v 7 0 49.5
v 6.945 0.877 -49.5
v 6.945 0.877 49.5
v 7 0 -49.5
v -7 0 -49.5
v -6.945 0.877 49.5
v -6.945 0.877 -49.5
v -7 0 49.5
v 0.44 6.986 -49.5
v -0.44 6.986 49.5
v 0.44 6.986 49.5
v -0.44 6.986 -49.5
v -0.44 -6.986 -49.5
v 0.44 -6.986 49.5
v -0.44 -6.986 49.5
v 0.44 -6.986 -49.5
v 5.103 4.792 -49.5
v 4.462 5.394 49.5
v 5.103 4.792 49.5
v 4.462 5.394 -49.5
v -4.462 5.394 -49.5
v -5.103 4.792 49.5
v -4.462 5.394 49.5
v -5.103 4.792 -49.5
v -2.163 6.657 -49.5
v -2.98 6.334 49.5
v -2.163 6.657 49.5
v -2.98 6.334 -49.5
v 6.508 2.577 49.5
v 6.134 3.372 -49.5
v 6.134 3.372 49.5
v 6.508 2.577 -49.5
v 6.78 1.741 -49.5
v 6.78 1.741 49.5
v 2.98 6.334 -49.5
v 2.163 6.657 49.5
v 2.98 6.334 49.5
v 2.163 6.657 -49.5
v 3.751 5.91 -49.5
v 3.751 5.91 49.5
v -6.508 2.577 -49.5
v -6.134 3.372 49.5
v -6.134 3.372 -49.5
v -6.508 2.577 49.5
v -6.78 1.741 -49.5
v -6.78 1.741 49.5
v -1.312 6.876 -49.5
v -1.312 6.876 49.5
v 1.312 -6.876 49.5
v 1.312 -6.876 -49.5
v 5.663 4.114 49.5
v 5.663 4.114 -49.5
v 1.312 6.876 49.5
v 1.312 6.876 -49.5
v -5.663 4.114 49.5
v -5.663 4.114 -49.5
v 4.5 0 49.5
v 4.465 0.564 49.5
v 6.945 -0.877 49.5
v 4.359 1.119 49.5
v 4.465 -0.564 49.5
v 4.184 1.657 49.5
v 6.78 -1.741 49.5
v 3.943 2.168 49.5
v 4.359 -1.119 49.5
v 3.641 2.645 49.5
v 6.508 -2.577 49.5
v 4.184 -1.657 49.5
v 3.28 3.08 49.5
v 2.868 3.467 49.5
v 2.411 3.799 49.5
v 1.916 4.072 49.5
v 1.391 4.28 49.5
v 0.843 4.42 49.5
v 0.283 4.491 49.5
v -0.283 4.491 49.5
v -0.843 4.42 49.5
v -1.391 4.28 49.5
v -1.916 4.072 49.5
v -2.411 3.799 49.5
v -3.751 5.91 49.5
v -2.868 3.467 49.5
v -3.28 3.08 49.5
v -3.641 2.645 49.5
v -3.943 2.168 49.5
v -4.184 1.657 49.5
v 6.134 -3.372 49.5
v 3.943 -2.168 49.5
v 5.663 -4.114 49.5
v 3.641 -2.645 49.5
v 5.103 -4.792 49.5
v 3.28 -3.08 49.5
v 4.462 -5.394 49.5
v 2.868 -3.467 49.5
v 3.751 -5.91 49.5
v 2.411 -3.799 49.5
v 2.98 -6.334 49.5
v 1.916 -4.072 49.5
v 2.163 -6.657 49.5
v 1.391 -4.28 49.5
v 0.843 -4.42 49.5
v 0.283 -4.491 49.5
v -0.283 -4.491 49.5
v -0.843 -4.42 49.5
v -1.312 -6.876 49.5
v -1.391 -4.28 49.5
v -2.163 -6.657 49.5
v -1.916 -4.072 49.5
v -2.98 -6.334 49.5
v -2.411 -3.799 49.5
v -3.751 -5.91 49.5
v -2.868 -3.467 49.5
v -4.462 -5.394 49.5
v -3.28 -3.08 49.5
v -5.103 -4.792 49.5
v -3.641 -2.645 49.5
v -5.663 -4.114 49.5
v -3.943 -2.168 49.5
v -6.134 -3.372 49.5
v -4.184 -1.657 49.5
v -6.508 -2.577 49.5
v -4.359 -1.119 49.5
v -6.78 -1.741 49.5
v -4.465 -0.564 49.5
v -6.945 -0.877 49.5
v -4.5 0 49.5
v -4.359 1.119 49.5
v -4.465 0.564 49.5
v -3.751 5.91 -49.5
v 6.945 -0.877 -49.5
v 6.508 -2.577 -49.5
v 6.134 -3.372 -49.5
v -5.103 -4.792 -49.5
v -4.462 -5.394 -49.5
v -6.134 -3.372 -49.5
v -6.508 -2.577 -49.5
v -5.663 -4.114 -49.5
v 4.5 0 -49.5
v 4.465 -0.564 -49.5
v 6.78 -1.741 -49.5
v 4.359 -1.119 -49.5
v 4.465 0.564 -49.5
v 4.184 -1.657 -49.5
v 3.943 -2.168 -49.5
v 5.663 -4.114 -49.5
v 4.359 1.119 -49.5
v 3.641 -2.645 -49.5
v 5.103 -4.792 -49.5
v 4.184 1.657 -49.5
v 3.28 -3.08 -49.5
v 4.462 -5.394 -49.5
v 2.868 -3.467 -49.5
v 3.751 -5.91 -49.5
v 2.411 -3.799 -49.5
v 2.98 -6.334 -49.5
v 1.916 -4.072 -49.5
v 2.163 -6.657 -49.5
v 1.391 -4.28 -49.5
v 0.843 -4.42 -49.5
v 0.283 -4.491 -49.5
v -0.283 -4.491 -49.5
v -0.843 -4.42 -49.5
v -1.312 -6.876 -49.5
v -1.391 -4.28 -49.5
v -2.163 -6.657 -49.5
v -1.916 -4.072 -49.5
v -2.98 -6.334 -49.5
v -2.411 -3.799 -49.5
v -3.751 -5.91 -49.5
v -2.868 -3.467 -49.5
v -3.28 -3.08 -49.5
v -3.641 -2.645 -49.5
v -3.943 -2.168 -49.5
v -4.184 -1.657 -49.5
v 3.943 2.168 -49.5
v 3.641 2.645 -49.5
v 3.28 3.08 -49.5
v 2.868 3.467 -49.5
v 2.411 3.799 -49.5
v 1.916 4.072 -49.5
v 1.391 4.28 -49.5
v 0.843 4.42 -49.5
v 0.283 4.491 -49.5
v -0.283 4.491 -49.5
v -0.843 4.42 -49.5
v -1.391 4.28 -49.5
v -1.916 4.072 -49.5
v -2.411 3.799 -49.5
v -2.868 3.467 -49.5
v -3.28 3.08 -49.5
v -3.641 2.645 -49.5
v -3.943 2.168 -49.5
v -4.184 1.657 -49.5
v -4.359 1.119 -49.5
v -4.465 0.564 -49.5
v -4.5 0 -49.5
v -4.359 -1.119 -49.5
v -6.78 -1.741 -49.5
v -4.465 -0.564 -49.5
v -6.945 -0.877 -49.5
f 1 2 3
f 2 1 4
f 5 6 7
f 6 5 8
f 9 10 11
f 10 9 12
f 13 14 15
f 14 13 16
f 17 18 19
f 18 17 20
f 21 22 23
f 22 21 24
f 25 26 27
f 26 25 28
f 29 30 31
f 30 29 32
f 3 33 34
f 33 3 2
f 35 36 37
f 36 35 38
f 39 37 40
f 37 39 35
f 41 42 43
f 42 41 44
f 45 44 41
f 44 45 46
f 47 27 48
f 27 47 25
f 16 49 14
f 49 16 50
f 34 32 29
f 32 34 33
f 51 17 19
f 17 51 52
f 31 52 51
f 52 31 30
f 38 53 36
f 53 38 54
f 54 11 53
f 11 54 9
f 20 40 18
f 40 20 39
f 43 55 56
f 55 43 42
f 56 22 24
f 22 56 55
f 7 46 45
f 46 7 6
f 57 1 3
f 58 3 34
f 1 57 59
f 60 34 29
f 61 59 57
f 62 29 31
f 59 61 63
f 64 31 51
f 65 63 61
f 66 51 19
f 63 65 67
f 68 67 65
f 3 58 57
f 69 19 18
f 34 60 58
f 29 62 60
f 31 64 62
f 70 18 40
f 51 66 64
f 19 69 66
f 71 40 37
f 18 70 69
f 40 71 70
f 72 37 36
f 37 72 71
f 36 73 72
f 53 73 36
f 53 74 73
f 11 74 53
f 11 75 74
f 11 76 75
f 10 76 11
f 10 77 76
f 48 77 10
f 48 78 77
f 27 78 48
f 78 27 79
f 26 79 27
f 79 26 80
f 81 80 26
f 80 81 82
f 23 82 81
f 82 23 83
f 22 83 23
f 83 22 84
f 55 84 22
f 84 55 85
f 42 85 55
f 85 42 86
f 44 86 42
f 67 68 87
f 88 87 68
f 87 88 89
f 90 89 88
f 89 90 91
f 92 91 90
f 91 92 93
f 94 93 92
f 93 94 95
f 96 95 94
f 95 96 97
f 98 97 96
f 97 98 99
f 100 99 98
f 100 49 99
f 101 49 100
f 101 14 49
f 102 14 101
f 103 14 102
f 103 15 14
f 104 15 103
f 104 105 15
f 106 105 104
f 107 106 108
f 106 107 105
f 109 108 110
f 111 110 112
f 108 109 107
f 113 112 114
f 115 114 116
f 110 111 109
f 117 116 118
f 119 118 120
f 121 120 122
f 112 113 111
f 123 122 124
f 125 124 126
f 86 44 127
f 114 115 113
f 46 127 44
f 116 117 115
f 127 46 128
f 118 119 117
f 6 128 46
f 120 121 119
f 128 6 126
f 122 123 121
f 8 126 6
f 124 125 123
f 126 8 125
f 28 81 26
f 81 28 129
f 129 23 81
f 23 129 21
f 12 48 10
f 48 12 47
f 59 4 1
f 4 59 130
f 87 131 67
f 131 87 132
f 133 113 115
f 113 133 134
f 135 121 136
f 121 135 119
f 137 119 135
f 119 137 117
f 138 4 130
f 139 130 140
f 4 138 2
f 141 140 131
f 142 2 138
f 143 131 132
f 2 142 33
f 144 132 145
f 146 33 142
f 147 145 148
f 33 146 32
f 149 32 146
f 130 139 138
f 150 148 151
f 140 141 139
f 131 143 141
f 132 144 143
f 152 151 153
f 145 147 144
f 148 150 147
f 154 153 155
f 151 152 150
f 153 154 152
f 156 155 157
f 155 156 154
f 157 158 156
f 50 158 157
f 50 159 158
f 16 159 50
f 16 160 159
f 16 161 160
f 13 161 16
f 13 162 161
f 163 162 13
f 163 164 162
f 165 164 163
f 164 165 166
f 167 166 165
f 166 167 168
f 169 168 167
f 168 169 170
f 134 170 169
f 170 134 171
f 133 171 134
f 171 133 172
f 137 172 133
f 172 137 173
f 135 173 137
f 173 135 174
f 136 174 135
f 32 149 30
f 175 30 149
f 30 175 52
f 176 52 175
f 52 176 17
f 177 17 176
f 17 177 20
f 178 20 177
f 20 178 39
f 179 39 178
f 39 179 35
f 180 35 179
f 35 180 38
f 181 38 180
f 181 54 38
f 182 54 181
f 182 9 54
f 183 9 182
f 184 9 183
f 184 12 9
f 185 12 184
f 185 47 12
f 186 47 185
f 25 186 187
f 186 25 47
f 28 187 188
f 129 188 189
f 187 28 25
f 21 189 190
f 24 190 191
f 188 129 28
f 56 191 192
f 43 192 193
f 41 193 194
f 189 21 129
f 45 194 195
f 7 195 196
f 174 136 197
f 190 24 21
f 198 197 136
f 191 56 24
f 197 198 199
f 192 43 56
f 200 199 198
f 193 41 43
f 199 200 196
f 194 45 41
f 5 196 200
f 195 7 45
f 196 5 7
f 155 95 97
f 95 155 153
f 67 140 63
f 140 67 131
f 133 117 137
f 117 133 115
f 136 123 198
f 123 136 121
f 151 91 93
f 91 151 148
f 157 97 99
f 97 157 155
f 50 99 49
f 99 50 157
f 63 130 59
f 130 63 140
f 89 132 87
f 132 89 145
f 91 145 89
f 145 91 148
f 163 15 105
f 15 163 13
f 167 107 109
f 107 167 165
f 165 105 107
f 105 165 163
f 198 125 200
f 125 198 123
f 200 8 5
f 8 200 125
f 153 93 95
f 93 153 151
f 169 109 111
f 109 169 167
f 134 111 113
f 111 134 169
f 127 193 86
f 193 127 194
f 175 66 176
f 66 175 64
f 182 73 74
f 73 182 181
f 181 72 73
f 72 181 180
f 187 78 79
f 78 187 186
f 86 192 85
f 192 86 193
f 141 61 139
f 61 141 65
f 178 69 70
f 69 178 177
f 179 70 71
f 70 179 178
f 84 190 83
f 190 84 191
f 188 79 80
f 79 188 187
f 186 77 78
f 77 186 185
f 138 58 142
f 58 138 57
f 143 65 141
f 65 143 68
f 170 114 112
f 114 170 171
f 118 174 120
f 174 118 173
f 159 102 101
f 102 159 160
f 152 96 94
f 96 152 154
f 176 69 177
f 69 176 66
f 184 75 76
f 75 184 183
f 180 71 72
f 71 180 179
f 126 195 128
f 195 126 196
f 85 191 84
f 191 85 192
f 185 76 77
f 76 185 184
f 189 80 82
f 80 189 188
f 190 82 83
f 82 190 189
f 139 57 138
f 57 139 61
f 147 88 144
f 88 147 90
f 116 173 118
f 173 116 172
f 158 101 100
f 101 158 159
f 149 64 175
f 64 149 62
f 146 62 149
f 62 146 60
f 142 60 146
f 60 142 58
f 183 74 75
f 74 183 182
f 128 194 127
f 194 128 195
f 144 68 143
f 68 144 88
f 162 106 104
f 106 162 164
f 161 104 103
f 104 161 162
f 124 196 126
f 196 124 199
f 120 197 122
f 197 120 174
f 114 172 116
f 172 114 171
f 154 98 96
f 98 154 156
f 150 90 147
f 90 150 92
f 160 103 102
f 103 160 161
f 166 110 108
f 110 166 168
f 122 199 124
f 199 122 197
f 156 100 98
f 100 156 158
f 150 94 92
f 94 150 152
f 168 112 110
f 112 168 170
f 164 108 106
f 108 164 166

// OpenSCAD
$fn = 50;


difference() {
	union() {
		translate(v = [0, 0, -49.5000000000]) {
			cylinder(h = 99, r = 7.0000000000);
		}
	}
	union() {
		translate(v = [0, 0, -100.0000000000]) {
			cylinder(h = 200, r = 4.5000000000);
		}
	}
}
